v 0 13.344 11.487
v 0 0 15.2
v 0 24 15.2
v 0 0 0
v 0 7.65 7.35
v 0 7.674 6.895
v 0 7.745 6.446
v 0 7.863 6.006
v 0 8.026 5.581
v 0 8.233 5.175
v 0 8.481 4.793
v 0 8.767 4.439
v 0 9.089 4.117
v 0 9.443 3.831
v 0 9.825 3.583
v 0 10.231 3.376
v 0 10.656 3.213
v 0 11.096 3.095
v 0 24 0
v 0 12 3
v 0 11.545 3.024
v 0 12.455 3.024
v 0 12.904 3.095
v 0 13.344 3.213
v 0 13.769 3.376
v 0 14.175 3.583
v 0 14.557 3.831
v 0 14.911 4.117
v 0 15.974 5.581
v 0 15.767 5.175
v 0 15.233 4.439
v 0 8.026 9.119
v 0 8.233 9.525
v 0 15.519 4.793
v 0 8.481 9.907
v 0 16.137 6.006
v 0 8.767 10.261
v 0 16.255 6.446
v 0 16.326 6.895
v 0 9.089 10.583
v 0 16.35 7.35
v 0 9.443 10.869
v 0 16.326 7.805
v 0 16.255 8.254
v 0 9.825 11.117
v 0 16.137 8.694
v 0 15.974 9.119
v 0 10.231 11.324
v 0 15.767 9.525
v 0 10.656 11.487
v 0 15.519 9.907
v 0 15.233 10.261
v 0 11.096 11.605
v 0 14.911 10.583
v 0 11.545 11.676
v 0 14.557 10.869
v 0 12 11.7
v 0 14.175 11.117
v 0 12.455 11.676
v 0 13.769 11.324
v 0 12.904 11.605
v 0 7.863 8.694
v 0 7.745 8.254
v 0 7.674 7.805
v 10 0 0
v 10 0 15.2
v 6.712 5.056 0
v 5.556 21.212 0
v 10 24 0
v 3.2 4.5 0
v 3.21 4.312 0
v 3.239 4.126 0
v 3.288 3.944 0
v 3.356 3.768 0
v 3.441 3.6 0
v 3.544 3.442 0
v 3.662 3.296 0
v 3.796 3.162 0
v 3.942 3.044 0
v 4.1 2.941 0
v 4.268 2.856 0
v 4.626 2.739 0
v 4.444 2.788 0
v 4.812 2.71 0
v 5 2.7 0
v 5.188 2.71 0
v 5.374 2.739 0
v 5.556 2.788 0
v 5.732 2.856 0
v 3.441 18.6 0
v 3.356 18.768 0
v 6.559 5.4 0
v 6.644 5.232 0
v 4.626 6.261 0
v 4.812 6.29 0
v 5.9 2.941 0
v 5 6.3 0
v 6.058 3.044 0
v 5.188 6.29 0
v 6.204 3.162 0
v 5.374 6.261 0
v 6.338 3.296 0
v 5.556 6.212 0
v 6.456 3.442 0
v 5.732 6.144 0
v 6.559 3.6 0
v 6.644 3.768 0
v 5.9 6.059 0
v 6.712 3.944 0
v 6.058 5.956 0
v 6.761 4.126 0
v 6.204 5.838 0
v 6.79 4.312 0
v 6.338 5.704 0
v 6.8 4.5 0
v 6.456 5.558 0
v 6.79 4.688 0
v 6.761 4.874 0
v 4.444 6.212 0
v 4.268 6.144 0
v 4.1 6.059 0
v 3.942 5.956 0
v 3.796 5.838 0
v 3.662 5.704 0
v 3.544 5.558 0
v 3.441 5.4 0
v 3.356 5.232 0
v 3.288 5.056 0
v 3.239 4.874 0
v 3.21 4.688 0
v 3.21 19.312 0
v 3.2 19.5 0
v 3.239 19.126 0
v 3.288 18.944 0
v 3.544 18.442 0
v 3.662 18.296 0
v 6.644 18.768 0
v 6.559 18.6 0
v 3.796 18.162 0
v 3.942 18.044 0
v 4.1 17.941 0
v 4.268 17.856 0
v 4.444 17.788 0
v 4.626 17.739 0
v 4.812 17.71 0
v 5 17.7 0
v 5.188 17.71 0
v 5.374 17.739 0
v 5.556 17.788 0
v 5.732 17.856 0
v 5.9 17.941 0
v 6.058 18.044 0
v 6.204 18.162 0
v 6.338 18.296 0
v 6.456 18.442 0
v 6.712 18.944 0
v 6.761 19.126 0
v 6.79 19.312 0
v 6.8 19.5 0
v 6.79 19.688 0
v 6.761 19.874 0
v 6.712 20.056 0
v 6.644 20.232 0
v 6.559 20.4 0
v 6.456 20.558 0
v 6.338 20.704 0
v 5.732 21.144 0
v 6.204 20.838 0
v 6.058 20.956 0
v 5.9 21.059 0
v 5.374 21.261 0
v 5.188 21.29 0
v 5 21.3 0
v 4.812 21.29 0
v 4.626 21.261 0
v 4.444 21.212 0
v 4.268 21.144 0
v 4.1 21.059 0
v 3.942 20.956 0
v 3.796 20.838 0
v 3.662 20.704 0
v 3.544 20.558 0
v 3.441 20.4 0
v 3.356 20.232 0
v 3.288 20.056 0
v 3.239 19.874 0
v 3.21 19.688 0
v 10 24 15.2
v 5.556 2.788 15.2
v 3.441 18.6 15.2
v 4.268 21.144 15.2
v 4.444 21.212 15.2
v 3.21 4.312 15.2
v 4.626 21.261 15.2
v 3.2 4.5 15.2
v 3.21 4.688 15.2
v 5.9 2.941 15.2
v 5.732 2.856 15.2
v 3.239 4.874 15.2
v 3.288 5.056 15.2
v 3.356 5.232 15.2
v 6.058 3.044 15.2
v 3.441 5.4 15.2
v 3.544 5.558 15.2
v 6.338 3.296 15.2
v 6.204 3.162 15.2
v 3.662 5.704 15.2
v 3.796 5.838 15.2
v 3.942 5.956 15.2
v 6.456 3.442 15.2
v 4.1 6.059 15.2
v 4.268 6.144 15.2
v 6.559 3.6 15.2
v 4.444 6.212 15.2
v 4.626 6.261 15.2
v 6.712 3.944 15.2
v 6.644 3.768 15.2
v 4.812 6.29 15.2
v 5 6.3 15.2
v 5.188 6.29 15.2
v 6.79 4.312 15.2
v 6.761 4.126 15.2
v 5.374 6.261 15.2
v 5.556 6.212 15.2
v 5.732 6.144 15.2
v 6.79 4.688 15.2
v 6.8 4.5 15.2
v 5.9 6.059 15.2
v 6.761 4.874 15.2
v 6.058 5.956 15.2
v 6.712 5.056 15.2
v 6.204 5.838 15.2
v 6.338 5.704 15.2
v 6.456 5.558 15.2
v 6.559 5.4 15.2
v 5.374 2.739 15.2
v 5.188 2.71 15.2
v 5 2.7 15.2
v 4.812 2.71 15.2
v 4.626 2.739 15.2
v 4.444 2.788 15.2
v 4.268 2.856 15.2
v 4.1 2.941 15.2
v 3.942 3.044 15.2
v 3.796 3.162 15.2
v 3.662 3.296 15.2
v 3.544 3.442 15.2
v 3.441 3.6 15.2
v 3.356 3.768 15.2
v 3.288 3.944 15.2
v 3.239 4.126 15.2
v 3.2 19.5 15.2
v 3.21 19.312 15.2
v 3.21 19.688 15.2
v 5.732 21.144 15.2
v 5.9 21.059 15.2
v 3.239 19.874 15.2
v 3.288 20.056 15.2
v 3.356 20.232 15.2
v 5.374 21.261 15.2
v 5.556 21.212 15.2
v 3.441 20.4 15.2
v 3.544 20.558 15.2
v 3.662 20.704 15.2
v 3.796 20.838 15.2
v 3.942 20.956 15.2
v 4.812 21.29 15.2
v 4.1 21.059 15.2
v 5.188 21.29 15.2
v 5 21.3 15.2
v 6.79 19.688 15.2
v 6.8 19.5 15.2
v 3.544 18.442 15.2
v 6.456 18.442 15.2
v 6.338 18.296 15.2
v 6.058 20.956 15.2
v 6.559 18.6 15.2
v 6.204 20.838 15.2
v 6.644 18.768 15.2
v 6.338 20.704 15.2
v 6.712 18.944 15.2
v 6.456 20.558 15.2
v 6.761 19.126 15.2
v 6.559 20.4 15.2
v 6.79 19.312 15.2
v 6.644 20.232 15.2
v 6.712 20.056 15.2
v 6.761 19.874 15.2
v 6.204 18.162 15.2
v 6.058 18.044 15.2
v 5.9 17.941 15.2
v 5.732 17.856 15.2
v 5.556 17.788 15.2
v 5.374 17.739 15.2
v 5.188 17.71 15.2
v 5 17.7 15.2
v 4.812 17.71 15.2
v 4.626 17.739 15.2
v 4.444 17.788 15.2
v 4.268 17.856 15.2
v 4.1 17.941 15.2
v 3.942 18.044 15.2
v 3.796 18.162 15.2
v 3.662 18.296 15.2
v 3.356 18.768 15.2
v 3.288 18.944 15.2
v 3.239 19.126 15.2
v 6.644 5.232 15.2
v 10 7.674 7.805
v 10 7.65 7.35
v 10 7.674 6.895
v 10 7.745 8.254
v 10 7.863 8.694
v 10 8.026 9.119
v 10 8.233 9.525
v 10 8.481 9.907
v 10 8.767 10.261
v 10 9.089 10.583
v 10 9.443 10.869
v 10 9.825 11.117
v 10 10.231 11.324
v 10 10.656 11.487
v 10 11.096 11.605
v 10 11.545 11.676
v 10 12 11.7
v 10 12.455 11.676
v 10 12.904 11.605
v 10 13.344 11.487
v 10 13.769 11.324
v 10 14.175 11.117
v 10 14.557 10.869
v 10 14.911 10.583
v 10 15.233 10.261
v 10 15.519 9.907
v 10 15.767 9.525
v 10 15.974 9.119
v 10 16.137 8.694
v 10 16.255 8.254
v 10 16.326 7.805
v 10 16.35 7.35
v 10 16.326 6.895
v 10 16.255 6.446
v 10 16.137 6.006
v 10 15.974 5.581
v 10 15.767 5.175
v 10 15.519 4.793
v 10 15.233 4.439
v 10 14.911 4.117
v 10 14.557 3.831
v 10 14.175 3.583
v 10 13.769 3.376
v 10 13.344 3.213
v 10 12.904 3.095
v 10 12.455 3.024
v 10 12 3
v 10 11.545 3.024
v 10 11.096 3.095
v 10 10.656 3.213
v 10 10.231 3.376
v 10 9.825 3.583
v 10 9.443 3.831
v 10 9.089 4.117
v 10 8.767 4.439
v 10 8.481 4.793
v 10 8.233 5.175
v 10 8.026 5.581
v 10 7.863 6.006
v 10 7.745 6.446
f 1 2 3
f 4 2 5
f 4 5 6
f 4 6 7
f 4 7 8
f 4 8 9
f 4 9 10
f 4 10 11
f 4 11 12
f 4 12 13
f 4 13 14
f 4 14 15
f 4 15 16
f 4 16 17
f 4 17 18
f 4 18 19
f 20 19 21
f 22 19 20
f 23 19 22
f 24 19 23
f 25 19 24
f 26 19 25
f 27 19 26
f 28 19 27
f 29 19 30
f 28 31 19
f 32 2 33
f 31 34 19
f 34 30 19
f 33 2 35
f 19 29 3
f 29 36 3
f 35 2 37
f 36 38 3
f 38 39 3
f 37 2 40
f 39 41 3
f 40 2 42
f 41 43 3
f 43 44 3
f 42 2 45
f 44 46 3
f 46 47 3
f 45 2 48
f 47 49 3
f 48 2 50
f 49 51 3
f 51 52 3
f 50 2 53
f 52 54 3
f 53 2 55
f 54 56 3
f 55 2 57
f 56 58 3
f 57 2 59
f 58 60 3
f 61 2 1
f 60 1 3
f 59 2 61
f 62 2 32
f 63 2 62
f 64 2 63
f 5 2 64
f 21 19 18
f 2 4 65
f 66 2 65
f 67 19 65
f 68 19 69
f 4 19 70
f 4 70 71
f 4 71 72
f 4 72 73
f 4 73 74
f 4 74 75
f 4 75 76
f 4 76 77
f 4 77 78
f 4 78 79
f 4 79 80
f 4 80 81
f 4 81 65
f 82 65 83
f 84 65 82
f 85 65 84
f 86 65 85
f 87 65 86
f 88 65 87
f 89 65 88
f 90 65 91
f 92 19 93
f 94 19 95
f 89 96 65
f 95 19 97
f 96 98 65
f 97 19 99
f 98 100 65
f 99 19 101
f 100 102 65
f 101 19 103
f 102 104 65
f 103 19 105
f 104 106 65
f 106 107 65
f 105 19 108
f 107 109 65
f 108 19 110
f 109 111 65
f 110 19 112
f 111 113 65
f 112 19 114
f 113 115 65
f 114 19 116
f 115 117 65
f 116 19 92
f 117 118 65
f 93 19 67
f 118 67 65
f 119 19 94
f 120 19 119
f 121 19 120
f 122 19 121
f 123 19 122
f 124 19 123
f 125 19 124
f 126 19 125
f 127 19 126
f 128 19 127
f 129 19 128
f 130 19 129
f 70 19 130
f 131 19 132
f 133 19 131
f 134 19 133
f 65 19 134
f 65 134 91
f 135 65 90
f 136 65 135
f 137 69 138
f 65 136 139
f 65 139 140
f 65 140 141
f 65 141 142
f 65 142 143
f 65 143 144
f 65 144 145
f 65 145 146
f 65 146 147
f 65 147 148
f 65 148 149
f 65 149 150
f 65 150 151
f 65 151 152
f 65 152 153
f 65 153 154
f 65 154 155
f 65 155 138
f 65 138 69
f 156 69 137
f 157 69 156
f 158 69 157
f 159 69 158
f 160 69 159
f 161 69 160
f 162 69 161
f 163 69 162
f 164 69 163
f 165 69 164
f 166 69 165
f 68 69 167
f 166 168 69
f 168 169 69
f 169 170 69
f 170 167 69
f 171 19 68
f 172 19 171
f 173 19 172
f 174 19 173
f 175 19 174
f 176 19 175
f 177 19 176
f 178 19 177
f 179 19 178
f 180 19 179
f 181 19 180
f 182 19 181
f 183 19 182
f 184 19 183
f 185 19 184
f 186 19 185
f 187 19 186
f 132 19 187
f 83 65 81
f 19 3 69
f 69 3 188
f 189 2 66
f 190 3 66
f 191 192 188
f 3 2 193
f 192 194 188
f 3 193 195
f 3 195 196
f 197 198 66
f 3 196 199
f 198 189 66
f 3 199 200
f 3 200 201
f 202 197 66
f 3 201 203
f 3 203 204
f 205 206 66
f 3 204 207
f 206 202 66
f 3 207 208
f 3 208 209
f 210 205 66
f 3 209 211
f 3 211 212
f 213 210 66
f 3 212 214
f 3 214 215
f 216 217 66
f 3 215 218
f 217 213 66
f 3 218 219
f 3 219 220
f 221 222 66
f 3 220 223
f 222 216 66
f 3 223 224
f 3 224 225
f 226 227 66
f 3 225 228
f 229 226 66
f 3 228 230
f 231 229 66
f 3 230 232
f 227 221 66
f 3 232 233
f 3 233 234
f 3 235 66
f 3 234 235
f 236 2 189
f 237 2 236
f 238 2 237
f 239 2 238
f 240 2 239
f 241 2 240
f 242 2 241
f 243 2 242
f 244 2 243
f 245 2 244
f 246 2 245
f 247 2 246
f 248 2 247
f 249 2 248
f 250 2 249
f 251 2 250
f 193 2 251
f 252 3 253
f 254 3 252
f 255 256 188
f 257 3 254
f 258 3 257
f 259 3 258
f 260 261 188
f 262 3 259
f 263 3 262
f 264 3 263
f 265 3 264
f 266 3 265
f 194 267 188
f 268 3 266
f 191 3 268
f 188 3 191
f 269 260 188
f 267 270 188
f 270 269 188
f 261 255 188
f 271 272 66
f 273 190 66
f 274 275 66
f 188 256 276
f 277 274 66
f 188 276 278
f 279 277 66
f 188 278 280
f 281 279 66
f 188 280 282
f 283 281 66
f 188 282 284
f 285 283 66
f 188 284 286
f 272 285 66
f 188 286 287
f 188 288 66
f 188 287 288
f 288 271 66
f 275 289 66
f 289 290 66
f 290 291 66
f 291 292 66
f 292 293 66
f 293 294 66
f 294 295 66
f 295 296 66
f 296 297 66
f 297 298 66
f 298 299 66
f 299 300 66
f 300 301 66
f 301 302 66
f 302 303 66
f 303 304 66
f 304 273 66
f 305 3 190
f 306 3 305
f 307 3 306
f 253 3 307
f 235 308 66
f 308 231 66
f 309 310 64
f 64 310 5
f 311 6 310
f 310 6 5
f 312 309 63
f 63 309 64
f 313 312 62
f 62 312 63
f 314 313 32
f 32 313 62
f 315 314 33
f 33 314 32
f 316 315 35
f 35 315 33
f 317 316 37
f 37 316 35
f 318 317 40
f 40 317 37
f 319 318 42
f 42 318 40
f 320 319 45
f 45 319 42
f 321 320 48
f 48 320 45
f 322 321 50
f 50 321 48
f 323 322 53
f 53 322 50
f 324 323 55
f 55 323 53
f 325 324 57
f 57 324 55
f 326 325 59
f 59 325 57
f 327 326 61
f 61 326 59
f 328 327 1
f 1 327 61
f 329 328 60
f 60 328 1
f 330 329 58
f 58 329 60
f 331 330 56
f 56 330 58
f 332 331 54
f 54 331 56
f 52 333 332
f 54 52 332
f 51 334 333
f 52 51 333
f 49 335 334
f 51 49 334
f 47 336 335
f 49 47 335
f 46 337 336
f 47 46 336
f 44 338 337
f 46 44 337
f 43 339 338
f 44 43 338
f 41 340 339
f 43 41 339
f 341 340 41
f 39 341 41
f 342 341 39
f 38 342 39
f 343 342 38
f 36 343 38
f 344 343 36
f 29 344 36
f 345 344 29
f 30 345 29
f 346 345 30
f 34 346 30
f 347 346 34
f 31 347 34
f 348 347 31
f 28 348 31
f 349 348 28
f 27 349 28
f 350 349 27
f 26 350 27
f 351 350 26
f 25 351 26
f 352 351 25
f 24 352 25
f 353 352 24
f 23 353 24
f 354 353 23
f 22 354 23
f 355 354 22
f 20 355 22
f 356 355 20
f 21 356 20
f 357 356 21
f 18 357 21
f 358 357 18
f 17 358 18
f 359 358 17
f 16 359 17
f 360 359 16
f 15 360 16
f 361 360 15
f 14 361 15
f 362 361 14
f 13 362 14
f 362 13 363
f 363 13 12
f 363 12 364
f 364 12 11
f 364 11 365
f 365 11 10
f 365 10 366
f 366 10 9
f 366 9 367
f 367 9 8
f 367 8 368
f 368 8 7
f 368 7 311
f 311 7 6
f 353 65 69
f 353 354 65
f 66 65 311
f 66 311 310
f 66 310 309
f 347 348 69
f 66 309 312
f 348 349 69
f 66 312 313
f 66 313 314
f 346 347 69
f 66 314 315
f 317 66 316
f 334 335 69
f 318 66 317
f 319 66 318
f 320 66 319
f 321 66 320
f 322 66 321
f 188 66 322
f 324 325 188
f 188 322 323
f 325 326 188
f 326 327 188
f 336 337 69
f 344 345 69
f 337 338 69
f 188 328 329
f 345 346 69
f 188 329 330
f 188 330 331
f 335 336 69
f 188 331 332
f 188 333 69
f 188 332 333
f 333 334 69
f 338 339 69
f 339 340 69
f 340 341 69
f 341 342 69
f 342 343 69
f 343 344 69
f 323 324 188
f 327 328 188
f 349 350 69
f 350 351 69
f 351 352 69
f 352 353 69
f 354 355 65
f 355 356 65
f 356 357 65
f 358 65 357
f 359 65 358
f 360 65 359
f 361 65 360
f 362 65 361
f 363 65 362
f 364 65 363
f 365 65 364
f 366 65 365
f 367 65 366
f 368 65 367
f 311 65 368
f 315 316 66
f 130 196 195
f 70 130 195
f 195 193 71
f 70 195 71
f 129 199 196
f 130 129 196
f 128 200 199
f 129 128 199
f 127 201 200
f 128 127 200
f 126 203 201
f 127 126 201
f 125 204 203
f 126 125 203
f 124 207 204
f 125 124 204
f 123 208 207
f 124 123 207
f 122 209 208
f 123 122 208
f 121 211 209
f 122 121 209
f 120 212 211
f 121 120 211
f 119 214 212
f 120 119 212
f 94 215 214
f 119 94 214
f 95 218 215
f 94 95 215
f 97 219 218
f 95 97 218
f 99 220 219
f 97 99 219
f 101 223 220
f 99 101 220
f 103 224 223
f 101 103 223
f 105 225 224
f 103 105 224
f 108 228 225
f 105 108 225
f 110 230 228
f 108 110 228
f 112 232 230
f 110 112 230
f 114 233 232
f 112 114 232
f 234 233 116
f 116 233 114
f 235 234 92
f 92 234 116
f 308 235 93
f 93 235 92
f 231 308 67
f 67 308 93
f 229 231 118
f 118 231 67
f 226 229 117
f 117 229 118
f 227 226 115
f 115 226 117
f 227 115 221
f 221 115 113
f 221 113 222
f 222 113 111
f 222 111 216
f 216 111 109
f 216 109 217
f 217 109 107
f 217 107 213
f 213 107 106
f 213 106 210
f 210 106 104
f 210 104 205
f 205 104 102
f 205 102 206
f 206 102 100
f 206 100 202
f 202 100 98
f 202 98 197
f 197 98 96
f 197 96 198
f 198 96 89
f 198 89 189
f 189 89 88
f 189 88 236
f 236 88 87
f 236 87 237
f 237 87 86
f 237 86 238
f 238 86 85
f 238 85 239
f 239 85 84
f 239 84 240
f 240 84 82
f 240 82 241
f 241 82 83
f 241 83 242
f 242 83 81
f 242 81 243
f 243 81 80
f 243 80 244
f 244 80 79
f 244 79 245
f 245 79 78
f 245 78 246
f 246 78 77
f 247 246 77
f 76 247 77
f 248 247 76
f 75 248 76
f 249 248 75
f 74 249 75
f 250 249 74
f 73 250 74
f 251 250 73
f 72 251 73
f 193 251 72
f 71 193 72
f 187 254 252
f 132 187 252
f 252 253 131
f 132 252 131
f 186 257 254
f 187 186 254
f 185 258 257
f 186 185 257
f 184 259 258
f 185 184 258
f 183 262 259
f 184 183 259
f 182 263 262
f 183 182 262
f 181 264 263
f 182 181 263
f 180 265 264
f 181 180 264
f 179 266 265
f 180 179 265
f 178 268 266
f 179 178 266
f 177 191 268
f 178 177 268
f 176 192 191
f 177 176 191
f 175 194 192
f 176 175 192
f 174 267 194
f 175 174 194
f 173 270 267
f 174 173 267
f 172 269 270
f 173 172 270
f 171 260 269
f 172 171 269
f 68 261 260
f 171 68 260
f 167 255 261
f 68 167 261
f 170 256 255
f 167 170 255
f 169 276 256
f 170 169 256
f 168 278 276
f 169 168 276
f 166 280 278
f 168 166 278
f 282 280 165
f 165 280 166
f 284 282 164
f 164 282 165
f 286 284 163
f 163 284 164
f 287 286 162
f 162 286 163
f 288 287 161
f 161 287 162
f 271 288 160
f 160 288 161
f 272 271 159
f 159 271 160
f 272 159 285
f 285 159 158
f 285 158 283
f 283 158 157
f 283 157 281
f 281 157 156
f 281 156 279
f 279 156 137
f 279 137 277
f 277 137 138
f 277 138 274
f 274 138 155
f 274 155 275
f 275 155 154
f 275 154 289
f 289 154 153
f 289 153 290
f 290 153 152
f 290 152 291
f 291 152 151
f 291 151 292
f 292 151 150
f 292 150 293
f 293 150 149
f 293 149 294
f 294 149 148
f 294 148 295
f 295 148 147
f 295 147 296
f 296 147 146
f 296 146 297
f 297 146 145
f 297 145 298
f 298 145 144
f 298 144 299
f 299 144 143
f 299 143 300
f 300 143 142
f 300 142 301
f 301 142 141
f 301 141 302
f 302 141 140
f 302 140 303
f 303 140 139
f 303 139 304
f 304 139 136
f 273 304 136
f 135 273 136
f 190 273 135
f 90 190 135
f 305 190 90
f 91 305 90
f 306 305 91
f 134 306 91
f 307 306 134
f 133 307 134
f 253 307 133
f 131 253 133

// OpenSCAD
// file: functions.scad
// Mendel Dynamics
// Functions used in many files
// GNU GPL v3
// Emili Sapena 
// emili@bcndynamics.com
// bcndynamics.com
// http://wiki-es.bcndynamics.com/Mendel_Dynamics
// http://github.com/djemili/MendelDynamics
// http://www.reprap.org/wiki/Mendel_Dynamics

// Some functions from:
// Prusa Mendel
// GNU GPL v3
// Josef Průša
// josefprusa@me.com
// prusadjs.cz
// http://www.reprap.org/wiki/Prusa_Mendel
// http://github.com/prusajr/PrusaMendel


module nut(d,h,horizontal=true){
cornerdiameter =  (d / 2) / cos (180 / 6);
cylinder(h = h, r = cornerdiameter, $fn = 6);
if(horizontal){
for(i = [1:6]){
	rotate([0,0,60*i]) translate([-cornerdiameter-0.2,0,0]) rotate([0,0,-45]) cube(size = [2,2,h]);
}}
}

// Based on nophead research
module polyhole(d,h) {
    n = max(round(2 * d),3);
    rotate([0,0,180])
        cylinder(h = h, r = (d / 2) / cos (180 / n), $fn = n);
}




module roundcorner(diameter){
	difference(){
		cube(size = [diameter,diameter,99], center = false);
		translate(v = [diameter, diameter, 0]) cylinder(h = 100, r=diameter, center=true);
	}
}


module roundcorner(diameter){
	difference(){
		cube(size = [diameter,diameter,99], center = false);
		translate(v = [diameter, diameter, 0]) cylinder(h = 100, r=diameter, center=true, $fn=10);//no augmentar
	}
}

// This module creates the shape that needs to be substracted from a cube to make its corners rounded.
module MycreateMeniscus(h,radius,angle) 
difference(){
	translate([radius/2+0.1+30/2,radius/2+0.1,0]){
		cube([radius+0.2+30,radius+0.1+radius*sin(angle),h+0.2],center=true);         
	}
	
	cylinder(h=h+0.2,r=radius,$fn = 100,center=true);
}

//     __          __ 
//    |__|   ()   |__|
//
module Connection(sep=40)
union() {
	translate([-sep/2,0,(grosor+2)/2]) cube([10+0.1,grosor+0.1,grosor+2], center=true);
	translate([sep/2,0,(grosor+2)/2]) cube([10+0.1,grosor+0.1,grosor+2], center=true);
	cylinder(h=grosor+2, r=m3_diameter/2, $fn=fnfn);
}

// without m3 hole
//     __          __
//    |__|        |__|
//

module ConnectionNC(sep=40)
union() {
	translate([-sep/2,0,(grosor+2)/2]) cube([10+0.1,grosor+0.1,grosor+2], center=true);
	translate([sep/2,0,(grosor+2)/2]) cube([10+0.1,grosor+0.1,grosor+2], center=true);
}

//     __          __ 
//  __|  |________|  |__
//           
module ConnectionOut(sep=40)
union() {
	translate([-sep/2,grosor/2,grosor/2]) cube([10,grosor,grosor], center=true);
	translate([sep/2,grosor/2,grosor/2]) cube([10,grosor,grosor], center=true);
}

//     __          __ 
//  __|  |___  ___|  |__
//           ||           
//           ++

module BoltHole(canal=true)
union() {
	if (canal) {
		translate([0,-5,(grosor+2)/2-1]) cube([m3_diameter,21,grosor+2], center=true);
	}
	translate([0,-10,(grosor+2)/2-1]) cube([m3_nut_diameter_horizontal,3,grosor+2], center=true);
}


module M3hole(hex=0) {
	
	if (hex) {
		cylinder(h=grosor+2,r=m3_nut_diameter_horizontal/2+0.5, $fn=6);
	}
	else {
		cylinder(h=grosor+2,r=m3_diameter/2, $fn=fnfn);
	}
}

//Hole for Bearing 608
module b608(h=8)
{
	translate([0,0,h/2]) cylinder(r=hole_for_608/2,h=h,center=true,$fn=fnfn);
}


module M8hole(h=8)
{
	translate([0,0,h/2]) cylinder(r=m8_hole/2,h=h,center=true,$fn=fnfn);
}

module motor()
{
	union() {
		cube([l_motor,a_motor,a_motor]);
		translate([-20,a_motor/2,a_motor/2])
		rotate([0,90,0]) cylinder(h=20,r=2.5);
	}
}

// nema 17 holes
module MotorHoles()
{
	translate([motor_h_sep/2, motor_h_sep/2, 0]) M3hole();
	translate([motor_h_sep/2, -motor_h_sep/2, 0]) M3hole();
	translate([-motor_h_sep/2, motor_h_sep/2, 0]) M3hole();
	translate([-motor_h_sep/2, -motor_h_sep/2, 0]) M3hole();
	translate(v=[0,0,0]) cylinder(r=26/2, h=grosor+2, $fn=fnfn);
}
// file: constants.scad
// Mendel Dynamics
// Constant values used in many files
// GNU GPL v3
// Emili Sapena 
// emili@bcndynamics.com
// bcndynamics.com
// http://wiki-es.bcndynamics.com/Mendel_Dynamics
// http://github.com/djemili/MendelDynamics
// http://www.reprap.org/wiki/Mendel_Dynamics

//DEBUG
//fnfn=10;

//RENDER
fnfn=60;


// Plates' thickness
grosor=5;

threaded_rod_diameter = 8.7;
m3_diameter = 3.6;
m3_nut_diameter = 5.3;
m3_nut_diameter_horizontal = 6.1;

m8_clearance_hole=8.8;
m8_hole=8.4;
hole_for_608=22.3;
608_diameter=22;
pulley_diameter=10; //TODO

hole_separation=58.5; //from Prusa's frame vertex
xbars_separation=50;
hotend_hole_sep=30;
xventilador=10; //TODO
l_motor=50; // 47 mesurat per mi! deixem 50 per si hi ha motors mes llargs
a_motor=42.4; //mesurat per mi!
motor_h_sep=31;

pla_diam=3;
teflon_diam=16.3;

bushing_holes_dist=28;
rod_clamp_holes_dist=15;
belt_clamp_holes_dist=18;

//Recheck these values:
ramps_holes_a=48;
ramps_holes_b=82.5;
ramps_holes_c=75;

lme8uu=false;
lm8uu_diameter=(lme8uu==true) ? 16 : 15;
lm8uu_length=(lme8uu==true) ? 25 : 24;
lm8uu_radius = lm8uu_diameter / 2;
block_height = 2*lm8uu_length+17;

//==================================


// Triangles
marge_llarg=75;
marge_curt=10;
lateral=320+marge_llarg*2;
altura=lateral*sin(60);

//y_off=7*8.65;
y_off=60;
ample_z=100;
marge_z=20;
offset_z=20; //eleva inici del forat eix z
altura_z=(lateral-(ample_z/2+marge_z)/cos(60))*sin(60)-marge_z-offset_z;


// Lamines base i frontal

llarg_base=234;
curt_base=80;
llarg_front=llarg_base+40;

// Safata
distC_safata=210;
distV_safata=140;
distB_safata=40;
dist_belt=18;
ample_safata=220;
llarg_safata=220;
dist_bushing=28;

ample_total=410; //distancia entre centres de varilles llises Z
// z_motor
llarg_zm=(ample_total-llarg_base-grosor*2)/2 + 20;
//llarg_zm=100;
ample_zm=hole_separation+m8_clearance_hole*2+10;
zdist=30;

//extruder
x_motor_ex=xventilador+10+hotend_hole_sep/2+10;
y_motor_ex=10;
hotend_rotation=90; 
llarg_ex=xventilador+hotend_hole_sep+l_motor+30;
ample_ex=xbars_separation+m8_clearance_hole*2+10;

//xend
ample_xe=ample_ex;
llarg_xe=zdist+40;


//y motor
llarg_ym=hole_separation+threaded_rod_diameter+20;

//alt
ample_ym=a_motor+10;

//x carriage
llarg_xc=105;
ample_xc=xbars_separation+bushing_holes_dist+10;
// file: metric.scad
// PRUSA iteration3
// Default metric sizes
// GNU GPL v3
// Josef Průša <josefprusa@me.com>
// http://www.reprap.org/wiki/Prusa_Mendel
// http://github.com/prusajr/PrusaMendel

// DONT CHANGE THIS FILE! ALTER VALUES IN CONFIGURATION.SCAD INSTEAD

// RODS

threaded_rod_diameter = 8.7;
threaded_rod_diameter_horizontal = 9;
smooth_bar_diameter = 8;
smooth_bar_diameter_horizontal = 8.5;
smooth_big_bar_diameter_horizontal = 10.8;

// Nuts and bolts


m8_diameter = 9;
//iso4032 says Width across corners = 14.38
m8_nut_diameter = 14.1;

m4_diameter = 4.7;
//iso4032 says 7.66
m4_nut_diameter = 7.6;
m4_nut_diameter_horizontal = 8.15;

m3_diameter = 3.4;
//iso4032 says 6.01
m3_nut_diameter = 5.3;
m3_nut_diameter_horizontal = 6.8;
m3_washer_diameter = 6.9;

// Motors

motor_shaft = 5.5;
// file: configuration.scad
// PRUSA Mendel  
// Configuration file
// GNU GPL v3
// Josef Průša
// josefprusa@me.com
// prusadjs.cz
// http://www.reprap.org/wiki/Prusa_Mendel
// http://github.com/prusajr/PrusaMendel

// PLEASE SELECT ONE OF THE CONFIGURATIONS BELOW
// BY UN-COMMENTING IT

// Uncomment for metric settings
// METRIC METRIC METRIC METRIC METRIC METRIC METRIC METRIC 

include <metric.scad>;
include <constants.scad>

// CUSTOM CUSTOM CUSTOM CUSTOM CUSTOM CUSTOM CUSTOM CUSTOM CUSTOM

thin_wall = 3;


// Linear bearing version
linear = false;
// set false for LM-8UU, true for LM-E-8UU (ignore if linear is set to false)
lme8uu = false;



// CHANGE ONLY THE STUFF YOU KNOW
// IT WILL REPLACE DEFAULT SETTING

// RODS

// threaded_rod_diameter = 0;
// threaded_rod_diameter_horizontal = 0;
// smooth_bar_diameter = 0;
// smooth_bar_diameter_horizontal = 0;

// Nuts and bolts

// m8_diameter = 0;
// m8_nut_diameter = 0;

// m4_diameter = 0;
// m4_nut_diameter = 0;

// m3_diameter = 0;
// m3_nut_diameter = 0;

// Bushing holder

// bushing_core_diameter = smooth_bar_diameter;
// bushing_material_thickness = 0;


///counted stuff
m3_nut_diameter_bigger = ((m3_nut_diameter  / 2) / cos (180 / 6))*2;

// functions 
include <functions.scad>
// main file
// Mendel Dynamics
// Plate clamp. Fixes a threaded rod to a plate
// GNU GPL v3
// Emili Sapena 
// emili@bcndynamics.com
// bcndynamics.com
// http://wiki-es.bcndynamics.com/Mendel_Dynamics
// http://github.com/djemili/MendelDynamics
// http://www.reprap.org/wiki/Mendel_Dynamics

include <configuration.scad>

/**
 * @id plate-clamp
 * @name Plate clamp
 * @category Printed
 * @using 2 m3nut
 * @using 2 m3washer
 * @using 2 m3x25bolt
 */ 

dist_holes=15;
pwidth=24;

module PlateClamp() {

	union() {
		difference() {
			cube([10, pwidth, threaded_rod_diameter + 6 - grosor/2 + 3]);

			translate([-1, pwidth/2, threaded_rod_diameter/2 + 3])
				rotate([0,90,0])
				cylinder(r=threaded_rod_diameter/2, h=12, $fn=fnfn);

				translate([5, pwidth/2-dist_holes/2, -1]) cylinder(h=20,r=m3_diameter/2, $fn=fnfn);
				translate([5, pwidth/2+dist_holes/2, -1]) cylinder(h=20,r=m3_diameter/2, $fn=fnfn);
			
		} // difference()
		
	} //union()
}

//rotate([0,-90,0])
PlateClamp();
